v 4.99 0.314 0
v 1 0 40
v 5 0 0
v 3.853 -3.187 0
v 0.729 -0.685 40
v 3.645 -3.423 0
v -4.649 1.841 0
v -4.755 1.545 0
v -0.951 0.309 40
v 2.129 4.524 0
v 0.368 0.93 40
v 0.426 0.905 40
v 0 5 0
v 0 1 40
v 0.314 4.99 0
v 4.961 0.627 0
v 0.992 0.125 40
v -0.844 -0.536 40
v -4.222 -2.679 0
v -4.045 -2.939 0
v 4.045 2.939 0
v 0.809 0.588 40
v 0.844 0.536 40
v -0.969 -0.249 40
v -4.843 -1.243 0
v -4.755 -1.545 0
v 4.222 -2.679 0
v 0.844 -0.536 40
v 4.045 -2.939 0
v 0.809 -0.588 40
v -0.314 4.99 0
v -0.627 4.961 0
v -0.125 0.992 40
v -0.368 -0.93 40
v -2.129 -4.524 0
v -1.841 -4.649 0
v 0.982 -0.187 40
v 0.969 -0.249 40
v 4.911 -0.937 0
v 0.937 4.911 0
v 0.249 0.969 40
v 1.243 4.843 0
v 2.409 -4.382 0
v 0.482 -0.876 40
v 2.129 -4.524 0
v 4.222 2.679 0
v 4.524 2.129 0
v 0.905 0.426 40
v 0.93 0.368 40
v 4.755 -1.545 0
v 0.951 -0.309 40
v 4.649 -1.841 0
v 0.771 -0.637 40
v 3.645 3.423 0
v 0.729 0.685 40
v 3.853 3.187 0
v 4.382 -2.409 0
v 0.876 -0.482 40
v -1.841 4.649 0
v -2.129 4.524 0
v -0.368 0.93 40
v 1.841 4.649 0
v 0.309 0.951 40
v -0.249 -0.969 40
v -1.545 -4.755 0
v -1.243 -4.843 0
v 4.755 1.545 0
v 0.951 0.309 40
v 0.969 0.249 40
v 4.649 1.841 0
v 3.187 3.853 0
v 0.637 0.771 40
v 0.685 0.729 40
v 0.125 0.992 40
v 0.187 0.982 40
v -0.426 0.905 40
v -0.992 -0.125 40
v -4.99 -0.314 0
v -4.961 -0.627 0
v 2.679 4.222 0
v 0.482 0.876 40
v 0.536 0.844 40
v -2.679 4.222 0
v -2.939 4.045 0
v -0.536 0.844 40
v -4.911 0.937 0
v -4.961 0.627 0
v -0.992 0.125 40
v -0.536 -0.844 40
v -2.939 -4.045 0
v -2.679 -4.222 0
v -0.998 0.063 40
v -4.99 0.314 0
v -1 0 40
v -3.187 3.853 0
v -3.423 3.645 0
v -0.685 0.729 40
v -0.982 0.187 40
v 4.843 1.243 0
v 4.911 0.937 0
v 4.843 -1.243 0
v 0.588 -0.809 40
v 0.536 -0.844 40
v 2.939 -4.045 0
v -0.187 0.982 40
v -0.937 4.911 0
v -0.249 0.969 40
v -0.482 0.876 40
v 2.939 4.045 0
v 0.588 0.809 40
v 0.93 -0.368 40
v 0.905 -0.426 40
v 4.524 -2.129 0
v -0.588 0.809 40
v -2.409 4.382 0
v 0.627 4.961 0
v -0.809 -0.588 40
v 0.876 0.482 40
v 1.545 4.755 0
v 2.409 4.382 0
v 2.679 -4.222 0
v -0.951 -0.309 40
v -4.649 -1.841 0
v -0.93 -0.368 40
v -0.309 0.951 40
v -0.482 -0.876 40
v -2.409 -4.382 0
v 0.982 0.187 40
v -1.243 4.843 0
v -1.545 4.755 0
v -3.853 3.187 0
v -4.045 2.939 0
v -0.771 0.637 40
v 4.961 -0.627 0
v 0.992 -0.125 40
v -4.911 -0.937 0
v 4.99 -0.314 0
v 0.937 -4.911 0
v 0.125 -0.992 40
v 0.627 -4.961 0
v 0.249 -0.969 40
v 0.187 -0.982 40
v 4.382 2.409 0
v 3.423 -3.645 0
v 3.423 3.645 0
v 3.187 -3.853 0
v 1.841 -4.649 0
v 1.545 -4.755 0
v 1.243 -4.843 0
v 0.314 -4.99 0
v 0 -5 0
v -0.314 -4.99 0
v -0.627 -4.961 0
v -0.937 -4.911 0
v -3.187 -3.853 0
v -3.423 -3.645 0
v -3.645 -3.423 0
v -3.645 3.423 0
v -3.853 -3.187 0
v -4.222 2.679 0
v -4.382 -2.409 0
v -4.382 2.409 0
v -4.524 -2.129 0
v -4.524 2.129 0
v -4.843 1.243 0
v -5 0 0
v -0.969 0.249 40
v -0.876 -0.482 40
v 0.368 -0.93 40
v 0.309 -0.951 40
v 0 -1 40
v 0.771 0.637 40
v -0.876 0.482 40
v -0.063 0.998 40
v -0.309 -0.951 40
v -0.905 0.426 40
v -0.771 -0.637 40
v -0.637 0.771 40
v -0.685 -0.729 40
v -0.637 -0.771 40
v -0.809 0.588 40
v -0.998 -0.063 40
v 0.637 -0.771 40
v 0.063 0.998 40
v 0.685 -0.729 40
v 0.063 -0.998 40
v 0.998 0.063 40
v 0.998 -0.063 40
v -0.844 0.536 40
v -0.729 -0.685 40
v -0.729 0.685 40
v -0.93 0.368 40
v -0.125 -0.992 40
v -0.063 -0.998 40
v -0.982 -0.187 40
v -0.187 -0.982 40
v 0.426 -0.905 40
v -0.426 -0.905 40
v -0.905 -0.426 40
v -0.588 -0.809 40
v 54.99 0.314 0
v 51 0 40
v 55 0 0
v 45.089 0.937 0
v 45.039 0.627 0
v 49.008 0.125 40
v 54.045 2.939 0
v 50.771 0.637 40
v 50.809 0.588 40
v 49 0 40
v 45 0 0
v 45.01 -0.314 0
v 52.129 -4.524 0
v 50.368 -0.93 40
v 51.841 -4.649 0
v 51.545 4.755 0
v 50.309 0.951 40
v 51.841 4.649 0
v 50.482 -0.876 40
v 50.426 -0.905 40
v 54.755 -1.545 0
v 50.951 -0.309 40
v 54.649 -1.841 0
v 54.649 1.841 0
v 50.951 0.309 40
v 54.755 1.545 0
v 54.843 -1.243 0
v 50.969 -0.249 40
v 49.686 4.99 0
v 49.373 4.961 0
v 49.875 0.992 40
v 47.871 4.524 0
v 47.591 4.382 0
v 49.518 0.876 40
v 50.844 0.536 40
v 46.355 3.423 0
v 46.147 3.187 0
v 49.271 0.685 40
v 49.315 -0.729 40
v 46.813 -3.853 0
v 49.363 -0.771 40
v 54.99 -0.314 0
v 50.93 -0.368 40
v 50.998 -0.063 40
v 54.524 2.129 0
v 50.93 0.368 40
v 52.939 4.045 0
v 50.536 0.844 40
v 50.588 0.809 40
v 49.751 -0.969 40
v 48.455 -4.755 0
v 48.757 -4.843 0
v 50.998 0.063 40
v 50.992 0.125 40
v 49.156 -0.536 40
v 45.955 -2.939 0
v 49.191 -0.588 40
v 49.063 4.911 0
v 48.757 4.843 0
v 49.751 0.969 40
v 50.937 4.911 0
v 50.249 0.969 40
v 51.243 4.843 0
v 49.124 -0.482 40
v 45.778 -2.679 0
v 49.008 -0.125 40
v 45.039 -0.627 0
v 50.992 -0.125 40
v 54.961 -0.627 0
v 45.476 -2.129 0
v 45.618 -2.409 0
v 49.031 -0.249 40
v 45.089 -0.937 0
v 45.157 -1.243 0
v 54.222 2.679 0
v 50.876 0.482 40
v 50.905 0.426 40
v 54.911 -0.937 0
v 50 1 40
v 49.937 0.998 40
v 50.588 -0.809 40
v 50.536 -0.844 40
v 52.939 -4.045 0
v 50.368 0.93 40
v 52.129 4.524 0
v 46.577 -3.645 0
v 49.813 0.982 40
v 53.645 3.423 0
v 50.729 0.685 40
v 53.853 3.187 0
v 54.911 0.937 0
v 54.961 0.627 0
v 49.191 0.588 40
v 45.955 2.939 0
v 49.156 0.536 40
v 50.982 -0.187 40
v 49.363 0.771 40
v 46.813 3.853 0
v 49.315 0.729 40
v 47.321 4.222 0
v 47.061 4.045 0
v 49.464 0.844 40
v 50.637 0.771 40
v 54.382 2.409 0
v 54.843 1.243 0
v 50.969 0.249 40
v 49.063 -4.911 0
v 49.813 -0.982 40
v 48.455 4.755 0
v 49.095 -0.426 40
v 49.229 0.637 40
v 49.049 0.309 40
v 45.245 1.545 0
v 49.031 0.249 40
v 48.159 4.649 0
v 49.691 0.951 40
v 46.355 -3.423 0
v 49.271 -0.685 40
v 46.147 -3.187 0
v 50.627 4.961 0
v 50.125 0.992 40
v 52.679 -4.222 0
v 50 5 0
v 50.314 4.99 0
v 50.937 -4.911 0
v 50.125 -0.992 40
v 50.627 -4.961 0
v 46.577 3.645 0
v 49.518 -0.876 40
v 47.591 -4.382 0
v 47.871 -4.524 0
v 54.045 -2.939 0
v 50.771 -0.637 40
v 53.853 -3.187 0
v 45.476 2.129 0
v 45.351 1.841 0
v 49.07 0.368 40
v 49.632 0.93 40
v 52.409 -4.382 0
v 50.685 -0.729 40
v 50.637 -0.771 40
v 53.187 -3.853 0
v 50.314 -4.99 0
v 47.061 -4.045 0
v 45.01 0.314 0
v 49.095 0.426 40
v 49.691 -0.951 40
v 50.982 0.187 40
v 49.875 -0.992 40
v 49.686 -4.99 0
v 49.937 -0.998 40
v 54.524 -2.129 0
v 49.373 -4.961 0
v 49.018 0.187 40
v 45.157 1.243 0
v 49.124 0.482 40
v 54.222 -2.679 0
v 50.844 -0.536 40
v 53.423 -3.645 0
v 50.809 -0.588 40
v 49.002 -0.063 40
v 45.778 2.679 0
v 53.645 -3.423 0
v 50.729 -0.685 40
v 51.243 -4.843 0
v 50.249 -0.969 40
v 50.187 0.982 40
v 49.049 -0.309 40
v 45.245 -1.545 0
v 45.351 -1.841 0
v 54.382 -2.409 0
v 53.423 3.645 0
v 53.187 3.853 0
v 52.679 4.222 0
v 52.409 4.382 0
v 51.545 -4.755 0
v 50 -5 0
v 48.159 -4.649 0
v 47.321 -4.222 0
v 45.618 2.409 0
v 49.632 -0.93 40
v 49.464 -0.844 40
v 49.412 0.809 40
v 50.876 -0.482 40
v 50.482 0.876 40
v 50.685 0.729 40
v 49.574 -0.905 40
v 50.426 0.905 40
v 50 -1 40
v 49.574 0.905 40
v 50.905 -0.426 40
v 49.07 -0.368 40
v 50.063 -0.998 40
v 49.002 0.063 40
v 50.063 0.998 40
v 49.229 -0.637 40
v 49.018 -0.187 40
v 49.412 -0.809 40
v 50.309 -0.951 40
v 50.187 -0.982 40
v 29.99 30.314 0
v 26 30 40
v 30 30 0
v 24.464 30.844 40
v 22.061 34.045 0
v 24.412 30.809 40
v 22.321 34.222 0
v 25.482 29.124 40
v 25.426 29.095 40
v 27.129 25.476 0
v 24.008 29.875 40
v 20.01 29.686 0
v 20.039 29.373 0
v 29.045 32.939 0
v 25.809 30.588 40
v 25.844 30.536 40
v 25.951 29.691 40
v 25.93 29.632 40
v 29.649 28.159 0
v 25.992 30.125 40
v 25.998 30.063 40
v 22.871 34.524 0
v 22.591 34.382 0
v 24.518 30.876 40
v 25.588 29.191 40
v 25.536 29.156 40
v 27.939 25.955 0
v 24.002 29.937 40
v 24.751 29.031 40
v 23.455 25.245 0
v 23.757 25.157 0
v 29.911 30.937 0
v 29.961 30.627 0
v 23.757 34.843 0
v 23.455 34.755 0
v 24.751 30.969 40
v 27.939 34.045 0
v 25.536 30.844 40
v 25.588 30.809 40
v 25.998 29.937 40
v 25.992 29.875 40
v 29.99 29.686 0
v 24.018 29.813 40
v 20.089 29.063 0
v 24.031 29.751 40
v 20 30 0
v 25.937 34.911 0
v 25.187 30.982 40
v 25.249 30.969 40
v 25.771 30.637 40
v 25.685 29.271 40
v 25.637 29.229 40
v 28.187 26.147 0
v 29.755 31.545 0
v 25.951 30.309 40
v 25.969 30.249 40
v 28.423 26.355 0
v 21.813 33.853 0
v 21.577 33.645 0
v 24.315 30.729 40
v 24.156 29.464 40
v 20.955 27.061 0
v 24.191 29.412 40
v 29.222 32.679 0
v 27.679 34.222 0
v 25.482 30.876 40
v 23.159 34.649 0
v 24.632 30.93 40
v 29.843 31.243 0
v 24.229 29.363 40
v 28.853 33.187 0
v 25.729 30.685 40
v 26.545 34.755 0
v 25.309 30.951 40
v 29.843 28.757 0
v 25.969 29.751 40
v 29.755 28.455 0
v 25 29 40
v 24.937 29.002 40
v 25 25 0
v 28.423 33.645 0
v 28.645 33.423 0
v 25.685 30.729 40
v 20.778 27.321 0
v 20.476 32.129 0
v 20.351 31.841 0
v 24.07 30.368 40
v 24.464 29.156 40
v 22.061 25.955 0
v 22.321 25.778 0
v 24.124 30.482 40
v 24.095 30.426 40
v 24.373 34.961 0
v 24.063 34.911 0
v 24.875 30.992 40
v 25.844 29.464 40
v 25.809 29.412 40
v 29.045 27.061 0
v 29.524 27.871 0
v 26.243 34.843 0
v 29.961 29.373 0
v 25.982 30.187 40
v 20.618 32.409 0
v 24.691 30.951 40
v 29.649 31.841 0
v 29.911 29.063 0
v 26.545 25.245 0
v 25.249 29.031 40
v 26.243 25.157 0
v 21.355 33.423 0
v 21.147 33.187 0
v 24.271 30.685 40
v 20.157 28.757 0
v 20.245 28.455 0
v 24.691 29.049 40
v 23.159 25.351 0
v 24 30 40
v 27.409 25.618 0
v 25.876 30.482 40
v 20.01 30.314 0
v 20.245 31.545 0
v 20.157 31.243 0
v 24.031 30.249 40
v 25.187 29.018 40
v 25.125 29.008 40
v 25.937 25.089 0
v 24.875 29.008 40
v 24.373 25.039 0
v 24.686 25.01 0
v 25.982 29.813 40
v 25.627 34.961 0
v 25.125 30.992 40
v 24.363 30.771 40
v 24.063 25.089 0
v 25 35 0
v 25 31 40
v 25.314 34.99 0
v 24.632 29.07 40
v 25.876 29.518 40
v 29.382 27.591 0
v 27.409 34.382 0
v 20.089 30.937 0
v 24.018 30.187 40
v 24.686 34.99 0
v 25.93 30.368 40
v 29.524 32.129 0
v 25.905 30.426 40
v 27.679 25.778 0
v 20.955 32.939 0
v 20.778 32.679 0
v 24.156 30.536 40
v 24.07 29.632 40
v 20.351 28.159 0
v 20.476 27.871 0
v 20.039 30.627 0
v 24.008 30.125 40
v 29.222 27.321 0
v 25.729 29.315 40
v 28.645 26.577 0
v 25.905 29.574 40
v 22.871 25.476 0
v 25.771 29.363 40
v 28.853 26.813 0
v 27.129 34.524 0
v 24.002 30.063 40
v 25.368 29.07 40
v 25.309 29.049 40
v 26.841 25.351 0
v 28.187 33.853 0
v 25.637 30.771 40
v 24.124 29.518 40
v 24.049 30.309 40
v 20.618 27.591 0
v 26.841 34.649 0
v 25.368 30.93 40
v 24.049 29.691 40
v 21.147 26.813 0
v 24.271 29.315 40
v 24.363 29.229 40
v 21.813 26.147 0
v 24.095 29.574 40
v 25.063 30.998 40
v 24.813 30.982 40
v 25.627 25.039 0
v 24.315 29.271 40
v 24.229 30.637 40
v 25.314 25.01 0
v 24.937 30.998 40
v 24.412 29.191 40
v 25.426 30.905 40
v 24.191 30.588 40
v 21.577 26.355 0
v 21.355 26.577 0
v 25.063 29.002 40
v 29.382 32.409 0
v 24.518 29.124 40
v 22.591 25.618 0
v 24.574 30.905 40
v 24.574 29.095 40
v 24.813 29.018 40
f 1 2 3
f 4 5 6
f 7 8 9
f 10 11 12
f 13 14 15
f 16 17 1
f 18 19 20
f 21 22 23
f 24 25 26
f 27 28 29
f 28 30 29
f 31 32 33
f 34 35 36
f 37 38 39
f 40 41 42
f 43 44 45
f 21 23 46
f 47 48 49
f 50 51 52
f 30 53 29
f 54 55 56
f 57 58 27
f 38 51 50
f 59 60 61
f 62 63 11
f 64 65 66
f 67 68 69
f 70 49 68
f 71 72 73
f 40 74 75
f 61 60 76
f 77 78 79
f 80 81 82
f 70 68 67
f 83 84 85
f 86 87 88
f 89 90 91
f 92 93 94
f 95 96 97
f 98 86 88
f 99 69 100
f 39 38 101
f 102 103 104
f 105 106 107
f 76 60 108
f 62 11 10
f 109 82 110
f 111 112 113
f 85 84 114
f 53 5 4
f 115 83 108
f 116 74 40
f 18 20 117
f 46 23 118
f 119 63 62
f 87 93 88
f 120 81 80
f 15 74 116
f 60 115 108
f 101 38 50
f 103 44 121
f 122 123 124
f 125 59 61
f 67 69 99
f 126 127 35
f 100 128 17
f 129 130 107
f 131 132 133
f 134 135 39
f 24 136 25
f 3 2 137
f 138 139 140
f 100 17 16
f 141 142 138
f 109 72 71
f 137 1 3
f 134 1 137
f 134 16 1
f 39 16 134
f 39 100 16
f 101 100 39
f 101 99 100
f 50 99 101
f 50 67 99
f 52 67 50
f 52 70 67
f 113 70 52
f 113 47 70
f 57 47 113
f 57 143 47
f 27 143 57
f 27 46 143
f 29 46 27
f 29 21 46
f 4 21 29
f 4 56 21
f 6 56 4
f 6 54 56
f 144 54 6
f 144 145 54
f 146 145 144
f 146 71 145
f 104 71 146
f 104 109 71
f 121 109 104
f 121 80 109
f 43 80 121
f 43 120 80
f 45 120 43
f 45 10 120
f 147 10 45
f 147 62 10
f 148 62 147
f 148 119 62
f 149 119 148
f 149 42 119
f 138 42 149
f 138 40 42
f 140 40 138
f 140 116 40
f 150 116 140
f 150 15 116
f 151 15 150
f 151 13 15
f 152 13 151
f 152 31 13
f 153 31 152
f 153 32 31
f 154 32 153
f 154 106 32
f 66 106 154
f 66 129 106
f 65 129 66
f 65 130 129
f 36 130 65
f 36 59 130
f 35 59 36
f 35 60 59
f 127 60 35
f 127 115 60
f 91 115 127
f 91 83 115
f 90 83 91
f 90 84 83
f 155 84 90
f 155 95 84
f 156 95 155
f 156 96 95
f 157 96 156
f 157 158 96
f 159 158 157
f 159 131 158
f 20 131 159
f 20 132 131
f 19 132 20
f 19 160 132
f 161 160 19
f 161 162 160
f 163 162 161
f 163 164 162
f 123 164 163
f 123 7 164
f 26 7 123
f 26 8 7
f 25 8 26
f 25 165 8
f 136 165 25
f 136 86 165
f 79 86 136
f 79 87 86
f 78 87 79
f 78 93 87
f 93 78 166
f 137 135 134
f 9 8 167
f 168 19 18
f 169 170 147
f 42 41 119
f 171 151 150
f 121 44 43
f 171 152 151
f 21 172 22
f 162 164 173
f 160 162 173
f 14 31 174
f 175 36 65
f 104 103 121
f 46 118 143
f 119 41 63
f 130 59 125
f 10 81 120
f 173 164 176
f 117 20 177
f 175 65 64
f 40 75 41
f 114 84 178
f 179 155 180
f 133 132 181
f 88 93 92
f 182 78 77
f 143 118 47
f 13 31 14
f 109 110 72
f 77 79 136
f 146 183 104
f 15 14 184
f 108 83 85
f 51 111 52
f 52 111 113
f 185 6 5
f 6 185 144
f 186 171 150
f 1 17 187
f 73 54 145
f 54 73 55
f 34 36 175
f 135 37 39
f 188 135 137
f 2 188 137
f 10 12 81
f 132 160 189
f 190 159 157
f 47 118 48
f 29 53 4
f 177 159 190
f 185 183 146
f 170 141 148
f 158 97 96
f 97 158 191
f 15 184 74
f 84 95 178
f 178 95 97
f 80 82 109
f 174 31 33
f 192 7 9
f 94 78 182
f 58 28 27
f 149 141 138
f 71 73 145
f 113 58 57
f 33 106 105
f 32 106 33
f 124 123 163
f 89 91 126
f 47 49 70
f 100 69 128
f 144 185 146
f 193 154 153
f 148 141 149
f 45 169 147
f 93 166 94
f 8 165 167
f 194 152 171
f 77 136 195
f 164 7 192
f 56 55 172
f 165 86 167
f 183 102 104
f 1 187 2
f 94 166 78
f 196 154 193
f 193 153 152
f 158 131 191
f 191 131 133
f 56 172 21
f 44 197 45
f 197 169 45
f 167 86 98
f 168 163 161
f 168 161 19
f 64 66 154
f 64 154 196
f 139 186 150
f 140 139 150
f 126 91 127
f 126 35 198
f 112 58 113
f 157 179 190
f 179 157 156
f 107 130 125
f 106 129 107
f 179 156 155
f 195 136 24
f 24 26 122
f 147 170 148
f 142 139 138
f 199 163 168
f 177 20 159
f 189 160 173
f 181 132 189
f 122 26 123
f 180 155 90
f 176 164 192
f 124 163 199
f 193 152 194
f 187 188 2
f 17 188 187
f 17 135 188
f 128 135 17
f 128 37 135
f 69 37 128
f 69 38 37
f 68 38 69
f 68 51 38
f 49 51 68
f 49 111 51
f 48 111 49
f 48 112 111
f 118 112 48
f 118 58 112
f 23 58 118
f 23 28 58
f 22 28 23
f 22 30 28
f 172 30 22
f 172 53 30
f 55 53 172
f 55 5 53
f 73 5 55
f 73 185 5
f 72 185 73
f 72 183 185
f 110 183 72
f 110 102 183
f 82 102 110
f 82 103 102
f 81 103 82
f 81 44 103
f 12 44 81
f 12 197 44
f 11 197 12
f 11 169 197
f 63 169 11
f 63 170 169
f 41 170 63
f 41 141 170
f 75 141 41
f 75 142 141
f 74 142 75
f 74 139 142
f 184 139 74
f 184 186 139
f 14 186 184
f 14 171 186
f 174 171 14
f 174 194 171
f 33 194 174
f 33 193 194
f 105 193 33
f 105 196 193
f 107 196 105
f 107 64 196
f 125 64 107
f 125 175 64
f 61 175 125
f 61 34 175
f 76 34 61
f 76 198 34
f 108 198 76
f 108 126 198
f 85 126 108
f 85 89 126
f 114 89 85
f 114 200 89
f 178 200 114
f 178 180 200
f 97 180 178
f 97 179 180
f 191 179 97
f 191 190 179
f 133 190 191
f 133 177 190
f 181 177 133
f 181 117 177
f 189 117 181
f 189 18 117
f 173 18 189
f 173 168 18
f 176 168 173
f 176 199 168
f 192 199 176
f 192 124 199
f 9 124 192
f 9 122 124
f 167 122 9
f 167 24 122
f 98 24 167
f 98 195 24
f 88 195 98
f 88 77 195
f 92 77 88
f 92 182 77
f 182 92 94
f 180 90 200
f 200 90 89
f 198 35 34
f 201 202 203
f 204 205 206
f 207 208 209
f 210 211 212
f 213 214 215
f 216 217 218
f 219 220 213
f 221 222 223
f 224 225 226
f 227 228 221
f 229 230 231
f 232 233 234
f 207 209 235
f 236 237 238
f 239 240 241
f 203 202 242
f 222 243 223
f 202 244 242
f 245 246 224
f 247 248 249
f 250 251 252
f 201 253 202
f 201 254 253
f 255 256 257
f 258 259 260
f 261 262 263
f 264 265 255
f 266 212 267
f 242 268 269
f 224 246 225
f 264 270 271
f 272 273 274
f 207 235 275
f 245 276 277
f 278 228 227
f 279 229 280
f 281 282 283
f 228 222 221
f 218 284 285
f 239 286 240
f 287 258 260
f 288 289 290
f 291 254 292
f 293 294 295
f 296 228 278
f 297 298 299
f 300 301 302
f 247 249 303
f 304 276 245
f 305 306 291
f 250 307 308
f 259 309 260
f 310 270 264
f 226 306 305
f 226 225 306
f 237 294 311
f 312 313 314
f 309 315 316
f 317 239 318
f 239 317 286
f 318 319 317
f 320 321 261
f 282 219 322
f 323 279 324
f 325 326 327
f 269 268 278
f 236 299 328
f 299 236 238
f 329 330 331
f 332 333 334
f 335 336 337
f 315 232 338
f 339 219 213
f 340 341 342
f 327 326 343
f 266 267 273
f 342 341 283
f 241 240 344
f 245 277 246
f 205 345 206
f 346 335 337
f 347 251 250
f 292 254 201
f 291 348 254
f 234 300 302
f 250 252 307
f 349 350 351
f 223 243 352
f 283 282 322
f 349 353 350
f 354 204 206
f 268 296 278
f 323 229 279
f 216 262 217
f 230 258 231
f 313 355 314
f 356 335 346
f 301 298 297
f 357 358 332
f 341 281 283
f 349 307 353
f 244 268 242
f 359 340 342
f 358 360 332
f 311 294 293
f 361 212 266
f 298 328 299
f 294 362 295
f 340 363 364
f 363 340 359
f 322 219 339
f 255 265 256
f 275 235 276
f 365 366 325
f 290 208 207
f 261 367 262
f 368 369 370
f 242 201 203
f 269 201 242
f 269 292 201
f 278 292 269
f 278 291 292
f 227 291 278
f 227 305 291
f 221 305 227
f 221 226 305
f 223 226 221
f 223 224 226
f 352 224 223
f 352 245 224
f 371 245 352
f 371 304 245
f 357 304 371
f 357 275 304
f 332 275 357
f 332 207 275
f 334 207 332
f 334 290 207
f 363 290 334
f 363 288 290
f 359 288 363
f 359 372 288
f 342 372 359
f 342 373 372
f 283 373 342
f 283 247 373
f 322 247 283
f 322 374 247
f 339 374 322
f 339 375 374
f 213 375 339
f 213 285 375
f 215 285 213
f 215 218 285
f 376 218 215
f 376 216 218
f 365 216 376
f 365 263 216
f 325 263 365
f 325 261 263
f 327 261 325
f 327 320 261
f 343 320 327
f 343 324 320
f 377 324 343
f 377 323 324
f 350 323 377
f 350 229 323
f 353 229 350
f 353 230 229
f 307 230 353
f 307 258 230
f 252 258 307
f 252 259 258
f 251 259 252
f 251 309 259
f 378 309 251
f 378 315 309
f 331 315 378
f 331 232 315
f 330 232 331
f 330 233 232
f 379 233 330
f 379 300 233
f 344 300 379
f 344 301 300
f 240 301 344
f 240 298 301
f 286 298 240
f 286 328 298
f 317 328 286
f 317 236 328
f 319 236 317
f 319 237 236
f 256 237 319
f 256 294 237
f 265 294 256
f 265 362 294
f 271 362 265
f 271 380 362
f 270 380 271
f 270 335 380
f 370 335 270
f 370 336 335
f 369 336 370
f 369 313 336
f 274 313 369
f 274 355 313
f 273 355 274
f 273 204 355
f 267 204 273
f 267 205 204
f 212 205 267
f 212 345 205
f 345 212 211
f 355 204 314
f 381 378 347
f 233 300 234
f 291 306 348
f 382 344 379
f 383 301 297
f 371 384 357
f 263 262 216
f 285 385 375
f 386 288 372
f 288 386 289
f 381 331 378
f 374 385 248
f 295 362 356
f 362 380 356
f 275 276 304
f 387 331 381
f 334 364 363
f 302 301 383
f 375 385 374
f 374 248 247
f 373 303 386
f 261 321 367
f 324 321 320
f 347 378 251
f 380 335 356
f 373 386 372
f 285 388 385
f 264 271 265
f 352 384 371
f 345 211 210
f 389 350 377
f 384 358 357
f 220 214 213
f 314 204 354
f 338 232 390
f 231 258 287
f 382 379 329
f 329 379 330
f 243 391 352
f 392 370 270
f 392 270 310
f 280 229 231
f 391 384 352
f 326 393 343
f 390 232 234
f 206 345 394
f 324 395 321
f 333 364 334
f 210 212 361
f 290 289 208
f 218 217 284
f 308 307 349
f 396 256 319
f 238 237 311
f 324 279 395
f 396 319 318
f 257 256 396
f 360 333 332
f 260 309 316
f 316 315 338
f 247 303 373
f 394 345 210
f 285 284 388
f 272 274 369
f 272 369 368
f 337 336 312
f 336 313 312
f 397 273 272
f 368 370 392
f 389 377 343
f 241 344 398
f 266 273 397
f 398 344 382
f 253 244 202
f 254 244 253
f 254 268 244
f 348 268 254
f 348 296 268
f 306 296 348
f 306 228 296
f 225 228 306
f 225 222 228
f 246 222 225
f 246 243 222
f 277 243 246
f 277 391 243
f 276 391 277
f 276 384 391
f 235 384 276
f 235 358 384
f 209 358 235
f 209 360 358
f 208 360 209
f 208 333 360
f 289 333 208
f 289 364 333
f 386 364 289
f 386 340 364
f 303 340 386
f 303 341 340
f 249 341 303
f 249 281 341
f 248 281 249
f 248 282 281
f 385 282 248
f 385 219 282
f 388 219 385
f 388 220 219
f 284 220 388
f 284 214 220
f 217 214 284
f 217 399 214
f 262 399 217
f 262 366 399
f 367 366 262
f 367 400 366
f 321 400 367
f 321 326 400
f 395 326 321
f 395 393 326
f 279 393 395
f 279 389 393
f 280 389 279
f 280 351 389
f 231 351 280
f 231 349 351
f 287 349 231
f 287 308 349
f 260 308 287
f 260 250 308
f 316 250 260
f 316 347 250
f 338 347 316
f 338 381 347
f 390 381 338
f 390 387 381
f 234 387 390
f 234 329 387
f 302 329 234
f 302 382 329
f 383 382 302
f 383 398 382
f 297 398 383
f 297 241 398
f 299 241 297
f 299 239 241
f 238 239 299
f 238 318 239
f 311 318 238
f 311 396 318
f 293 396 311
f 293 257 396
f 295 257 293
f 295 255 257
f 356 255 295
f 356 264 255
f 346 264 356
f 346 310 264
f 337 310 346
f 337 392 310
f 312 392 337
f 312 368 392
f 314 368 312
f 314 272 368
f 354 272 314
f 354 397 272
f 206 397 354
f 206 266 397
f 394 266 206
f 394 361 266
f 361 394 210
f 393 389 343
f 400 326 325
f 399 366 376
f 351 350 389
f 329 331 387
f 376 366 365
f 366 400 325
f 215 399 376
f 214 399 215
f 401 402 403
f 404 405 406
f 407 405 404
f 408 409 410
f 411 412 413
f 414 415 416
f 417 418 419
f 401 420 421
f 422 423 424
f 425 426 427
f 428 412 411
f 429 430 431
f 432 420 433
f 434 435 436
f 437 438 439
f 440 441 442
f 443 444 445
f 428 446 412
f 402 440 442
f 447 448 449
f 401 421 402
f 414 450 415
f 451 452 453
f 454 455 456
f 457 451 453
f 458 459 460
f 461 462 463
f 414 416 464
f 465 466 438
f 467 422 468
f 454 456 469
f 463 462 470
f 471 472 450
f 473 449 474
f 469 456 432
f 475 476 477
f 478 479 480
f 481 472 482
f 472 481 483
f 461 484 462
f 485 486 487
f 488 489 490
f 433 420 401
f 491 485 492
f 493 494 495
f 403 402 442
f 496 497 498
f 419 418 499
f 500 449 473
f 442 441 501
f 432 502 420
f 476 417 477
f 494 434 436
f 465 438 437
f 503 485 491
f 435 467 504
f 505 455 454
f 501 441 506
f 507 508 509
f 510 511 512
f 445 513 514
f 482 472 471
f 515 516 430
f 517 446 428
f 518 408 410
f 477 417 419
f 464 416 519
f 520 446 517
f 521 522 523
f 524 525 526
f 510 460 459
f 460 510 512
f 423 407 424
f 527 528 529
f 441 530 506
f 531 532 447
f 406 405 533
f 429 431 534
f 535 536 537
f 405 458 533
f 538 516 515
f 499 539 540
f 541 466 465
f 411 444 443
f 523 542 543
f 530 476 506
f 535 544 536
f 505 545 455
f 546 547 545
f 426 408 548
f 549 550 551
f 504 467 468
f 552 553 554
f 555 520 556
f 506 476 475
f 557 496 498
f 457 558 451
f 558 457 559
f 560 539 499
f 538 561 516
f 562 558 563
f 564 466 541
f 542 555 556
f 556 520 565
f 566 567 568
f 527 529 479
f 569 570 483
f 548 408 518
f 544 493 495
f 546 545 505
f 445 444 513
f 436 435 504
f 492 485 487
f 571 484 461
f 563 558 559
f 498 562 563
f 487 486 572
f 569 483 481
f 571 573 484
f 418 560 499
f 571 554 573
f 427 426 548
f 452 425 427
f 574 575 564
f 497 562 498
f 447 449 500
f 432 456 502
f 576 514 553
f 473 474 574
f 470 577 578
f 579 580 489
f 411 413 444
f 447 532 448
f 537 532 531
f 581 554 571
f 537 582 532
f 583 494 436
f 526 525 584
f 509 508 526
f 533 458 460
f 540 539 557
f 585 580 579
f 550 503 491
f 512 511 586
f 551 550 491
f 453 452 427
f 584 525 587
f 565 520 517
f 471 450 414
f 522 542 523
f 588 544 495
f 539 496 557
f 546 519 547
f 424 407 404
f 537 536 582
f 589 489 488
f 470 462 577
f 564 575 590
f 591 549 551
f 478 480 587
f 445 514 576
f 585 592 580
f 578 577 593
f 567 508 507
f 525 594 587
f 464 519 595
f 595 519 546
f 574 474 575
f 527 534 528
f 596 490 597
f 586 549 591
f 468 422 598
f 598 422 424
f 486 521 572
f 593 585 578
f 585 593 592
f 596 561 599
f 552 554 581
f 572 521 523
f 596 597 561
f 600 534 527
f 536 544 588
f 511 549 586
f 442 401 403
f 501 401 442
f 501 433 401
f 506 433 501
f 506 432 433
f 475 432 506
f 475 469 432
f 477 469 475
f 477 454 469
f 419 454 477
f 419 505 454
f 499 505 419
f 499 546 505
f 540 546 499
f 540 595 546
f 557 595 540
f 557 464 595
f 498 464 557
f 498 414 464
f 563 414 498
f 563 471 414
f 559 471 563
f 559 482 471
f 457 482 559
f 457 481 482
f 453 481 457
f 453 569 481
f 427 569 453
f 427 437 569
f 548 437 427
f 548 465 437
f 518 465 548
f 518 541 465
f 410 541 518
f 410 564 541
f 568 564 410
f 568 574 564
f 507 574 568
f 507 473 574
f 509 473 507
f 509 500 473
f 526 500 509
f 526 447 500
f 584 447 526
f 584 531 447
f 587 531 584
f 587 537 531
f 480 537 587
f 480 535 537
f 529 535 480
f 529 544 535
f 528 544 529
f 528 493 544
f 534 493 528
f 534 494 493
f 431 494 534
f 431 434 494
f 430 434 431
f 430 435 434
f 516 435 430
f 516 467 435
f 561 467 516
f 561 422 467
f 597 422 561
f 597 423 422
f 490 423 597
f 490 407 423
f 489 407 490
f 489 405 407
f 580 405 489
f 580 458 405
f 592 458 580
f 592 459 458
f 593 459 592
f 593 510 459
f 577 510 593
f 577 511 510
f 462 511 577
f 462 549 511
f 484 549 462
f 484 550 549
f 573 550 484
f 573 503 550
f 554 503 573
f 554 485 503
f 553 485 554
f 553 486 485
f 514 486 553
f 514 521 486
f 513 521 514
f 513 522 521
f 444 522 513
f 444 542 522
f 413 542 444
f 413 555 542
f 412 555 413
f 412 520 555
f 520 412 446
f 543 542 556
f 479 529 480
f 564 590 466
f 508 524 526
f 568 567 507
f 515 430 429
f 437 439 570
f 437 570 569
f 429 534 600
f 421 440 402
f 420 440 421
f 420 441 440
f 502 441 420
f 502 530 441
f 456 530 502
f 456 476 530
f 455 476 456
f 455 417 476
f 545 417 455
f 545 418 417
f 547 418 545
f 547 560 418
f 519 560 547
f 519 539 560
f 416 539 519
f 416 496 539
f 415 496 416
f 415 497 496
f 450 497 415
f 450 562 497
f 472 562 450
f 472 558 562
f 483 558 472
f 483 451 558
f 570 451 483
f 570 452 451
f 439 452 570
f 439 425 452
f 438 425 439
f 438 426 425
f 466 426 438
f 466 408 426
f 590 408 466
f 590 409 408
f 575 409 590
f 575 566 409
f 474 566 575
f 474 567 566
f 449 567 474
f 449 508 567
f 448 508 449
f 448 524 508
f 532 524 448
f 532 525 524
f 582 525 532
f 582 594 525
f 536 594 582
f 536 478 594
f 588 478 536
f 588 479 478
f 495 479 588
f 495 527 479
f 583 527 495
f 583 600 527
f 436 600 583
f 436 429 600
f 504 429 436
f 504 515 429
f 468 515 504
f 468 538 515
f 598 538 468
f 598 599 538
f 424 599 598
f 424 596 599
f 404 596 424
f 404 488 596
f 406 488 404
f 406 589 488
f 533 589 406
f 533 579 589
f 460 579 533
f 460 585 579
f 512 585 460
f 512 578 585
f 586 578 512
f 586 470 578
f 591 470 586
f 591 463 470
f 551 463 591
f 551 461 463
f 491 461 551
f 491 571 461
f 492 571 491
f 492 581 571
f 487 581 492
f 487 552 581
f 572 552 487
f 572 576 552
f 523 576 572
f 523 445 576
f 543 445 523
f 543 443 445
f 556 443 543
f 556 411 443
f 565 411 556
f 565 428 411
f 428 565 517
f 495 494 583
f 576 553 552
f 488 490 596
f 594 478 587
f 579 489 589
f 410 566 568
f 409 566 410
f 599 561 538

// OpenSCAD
$fn=100;

translate([0,0,0])
    cylinder(40,5,1);
    
    
translate([50,0,0])
    cylinder(40,5,1);
    
translate([25,30,0])
    cylinder(40,5,1);
